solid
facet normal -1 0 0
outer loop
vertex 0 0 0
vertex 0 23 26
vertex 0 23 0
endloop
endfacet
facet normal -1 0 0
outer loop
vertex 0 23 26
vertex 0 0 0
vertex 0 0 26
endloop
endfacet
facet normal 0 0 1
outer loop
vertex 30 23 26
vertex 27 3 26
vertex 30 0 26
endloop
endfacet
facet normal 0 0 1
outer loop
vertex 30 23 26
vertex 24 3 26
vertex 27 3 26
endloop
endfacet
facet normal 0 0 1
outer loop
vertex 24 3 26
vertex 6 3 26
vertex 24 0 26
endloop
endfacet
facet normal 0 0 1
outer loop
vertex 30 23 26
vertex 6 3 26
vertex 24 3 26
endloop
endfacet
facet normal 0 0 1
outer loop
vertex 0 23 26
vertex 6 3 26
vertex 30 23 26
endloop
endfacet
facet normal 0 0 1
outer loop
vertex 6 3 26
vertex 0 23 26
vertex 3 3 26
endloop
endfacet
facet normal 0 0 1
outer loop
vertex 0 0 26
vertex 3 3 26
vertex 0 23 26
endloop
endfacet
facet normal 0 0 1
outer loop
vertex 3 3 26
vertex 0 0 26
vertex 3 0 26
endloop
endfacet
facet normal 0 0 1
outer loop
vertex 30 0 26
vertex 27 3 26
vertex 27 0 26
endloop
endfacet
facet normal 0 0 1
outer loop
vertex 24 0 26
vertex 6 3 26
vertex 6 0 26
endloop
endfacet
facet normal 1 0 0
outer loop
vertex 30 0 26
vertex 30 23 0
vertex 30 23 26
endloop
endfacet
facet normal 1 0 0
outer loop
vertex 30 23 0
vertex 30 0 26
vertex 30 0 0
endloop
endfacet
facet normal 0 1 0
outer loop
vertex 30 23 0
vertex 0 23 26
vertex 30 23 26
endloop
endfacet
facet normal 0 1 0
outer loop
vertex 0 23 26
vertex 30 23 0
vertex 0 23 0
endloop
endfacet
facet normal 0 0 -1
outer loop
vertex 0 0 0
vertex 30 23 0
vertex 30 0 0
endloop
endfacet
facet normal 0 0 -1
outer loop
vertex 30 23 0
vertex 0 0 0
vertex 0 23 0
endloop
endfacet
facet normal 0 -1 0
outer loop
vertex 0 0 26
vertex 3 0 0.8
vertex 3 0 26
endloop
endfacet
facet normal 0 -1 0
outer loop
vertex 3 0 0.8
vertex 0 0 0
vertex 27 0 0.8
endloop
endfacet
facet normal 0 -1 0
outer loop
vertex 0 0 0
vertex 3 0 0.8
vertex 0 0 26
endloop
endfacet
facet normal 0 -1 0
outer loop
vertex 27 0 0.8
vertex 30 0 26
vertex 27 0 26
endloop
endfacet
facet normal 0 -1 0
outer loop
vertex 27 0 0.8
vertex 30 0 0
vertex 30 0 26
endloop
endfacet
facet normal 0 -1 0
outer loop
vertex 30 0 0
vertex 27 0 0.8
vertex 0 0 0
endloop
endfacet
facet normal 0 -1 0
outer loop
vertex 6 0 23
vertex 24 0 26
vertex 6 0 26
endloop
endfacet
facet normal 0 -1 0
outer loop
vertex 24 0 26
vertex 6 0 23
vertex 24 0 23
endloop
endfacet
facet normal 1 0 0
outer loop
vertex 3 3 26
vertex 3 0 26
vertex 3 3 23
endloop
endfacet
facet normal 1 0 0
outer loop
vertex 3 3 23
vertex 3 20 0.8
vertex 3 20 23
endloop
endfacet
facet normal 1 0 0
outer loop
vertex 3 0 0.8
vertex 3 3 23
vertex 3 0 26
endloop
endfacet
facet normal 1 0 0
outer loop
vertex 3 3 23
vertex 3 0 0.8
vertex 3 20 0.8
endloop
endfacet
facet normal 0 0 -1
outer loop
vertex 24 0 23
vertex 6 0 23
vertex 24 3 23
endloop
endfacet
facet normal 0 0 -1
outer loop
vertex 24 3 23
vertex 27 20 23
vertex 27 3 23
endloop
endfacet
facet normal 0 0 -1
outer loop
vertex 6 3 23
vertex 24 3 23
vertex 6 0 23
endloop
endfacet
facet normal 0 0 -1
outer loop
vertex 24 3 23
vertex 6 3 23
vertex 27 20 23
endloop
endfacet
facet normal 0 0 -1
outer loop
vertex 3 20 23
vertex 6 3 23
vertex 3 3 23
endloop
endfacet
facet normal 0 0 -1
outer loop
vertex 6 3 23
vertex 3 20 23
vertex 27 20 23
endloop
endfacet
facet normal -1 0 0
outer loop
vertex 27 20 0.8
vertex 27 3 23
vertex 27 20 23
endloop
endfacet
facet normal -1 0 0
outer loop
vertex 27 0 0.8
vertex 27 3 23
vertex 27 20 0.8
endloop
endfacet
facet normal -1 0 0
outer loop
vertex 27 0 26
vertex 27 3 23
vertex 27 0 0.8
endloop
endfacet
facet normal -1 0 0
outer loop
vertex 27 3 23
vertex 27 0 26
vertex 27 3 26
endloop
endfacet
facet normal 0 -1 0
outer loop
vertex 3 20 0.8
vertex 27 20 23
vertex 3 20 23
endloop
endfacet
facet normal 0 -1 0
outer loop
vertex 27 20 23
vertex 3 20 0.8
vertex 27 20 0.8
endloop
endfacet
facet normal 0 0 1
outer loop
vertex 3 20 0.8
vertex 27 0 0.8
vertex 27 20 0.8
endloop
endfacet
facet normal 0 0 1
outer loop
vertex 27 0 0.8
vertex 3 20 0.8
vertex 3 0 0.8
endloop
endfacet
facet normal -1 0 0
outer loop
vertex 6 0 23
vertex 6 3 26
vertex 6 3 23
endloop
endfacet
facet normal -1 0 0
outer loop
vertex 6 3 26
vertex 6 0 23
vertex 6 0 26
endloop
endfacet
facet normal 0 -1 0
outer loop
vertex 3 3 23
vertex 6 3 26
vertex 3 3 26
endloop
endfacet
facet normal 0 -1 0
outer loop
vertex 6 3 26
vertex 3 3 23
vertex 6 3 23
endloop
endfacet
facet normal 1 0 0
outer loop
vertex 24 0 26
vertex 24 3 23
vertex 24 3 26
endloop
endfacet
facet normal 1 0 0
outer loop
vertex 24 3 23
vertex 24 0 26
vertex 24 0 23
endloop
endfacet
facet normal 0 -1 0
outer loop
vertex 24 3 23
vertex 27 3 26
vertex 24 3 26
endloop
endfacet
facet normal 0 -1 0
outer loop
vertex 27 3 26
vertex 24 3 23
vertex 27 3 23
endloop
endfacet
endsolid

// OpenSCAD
BackLed();

module BackLed(){
    
    // Main
    color("red")
    difference() {
        translate([0,0,0])
        cube([30,23,26]);
        translate([3,0,0.8])
        cube([24,20,22.2]);
        
        translate([3,0,23])
        cube([3,3,3]);
        translate([24,0,23])
        cube([3,3,3]);
    }
}
